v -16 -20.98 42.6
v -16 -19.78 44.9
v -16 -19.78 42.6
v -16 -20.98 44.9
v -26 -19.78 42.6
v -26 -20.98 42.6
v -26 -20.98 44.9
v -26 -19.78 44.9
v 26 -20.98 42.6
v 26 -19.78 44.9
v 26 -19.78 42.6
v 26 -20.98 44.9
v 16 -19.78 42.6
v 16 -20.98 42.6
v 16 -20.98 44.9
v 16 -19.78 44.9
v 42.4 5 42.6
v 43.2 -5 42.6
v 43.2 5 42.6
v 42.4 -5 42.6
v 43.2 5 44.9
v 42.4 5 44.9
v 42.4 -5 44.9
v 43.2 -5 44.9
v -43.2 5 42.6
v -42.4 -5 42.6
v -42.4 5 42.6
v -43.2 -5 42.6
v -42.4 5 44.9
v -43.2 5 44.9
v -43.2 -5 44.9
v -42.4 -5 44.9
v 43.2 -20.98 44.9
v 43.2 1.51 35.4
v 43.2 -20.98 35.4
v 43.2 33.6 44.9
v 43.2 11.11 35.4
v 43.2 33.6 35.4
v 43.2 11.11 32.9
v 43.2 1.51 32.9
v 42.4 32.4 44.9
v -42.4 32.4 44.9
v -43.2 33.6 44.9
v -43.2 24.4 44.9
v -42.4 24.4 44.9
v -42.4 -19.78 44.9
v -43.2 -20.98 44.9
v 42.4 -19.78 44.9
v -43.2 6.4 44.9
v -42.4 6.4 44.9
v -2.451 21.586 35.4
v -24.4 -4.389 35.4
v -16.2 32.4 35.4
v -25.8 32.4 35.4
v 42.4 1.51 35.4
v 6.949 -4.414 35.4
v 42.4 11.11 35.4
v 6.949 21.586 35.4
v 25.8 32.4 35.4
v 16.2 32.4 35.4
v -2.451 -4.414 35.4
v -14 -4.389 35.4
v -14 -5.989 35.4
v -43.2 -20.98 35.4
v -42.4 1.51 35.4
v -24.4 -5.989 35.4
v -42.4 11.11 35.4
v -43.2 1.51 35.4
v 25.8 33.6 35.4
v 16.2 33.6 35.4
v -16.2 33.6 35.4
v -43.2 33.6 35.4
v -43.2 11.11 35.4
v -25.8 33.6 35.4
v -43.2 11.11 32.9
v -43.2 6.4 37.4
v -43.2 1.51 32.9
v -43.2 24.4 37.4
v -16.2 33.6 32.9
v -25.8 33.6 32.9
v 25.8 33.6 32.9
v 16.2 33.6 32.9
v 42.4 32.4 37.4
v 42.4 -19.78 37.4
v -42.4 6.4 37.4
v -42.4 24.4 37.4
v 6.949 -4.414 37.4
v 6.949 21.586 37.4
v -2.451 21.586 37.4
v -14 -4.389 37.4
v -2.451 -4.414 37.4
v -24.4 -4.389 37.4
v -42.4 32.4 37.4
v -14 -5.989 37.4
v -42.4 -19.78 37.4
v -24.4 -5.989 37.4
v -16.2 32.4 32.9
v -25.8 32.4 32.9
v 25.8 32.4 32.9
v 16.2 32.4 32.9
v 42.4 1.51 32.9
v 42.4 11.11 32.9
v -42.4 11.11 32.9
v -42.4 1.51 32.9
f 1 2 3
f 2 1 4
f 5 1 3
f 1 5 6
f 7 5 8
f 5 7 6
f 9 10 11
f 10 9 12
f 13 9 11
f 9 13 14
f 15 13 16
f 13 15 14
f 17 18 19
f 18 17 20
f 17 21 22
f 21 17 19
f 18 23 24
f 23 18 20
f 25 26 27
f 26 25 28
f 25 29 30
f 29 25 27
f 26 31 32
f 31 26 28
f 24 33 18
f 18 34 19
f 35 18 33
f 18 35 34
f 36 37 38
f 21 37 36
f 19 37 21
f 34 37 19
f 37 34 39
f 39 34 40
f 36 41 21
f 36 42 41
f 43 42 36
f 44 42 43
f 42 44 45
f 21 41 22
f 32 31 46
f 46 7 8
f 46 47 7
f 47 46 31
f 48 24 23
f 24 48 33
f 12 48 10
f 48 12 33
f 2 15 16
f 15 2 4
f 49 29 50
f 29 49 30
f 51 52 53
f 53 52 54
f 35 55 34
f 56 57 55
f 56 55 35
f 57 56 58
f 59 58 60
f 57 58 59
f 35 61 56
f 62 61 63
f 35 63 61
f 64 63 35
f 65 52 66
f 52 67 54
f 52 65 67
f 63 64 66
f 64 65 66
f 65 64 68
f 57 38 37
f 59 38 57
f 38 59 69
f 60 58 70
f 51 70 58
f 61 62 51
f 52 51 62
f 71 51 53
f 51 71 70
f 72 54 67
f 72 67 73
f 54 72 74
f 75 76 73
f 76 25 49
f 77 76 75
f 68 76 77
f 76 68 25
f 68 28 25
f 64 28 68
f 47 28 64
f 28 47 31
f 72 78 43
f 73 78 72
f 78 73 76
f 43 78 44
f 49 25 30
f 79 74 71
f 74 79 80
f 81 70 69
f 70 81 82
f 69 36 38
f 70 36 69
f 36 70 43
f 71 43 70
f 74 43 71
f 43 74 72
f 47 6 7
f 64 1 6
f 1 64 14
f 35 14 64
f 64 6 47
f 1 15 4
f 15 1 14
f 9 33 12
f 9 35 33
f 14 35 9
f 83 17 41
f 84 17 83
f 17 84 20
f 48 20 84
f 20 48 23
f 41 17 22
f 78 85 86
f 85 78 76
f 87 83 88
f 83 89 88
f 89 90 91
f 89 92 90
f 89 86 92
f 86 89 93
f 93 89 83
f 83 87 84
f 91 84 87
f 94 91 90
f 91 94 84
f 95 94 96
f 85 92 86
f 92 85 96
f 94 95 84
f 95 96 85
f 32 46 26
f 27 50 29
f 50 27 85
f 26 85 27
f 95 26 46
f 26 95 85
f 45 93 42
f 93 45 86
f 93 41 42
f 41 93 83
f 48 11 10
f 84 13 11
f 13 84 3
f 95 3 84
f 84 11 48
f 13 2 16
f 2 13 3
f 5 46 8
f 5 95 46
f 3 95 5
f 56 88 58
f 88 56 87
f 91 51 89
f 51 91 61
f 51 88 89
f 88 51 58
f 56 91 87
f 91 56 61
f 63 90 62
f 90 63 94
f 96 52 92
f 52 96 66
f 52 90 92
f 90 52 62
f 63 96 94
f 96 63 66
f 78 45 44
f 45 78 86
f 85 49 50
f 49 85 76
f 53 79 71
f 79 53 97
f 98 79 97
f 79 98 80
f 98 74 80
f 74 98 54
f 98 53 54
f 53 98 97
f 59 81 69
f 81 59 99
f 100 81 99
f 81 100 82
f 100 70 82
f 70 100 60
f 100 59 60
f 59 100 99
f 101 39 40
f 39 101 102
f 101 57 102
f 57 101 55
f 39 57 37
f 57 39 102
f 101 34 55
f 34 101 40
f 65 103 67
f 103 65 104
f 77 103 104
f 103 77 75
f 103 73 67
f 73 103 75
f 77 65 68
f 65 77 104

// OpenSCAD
use <../carcasa-spinosaurus.scad>

baseSuperior(86.4, 67.2, 0, 0, 40.15);
